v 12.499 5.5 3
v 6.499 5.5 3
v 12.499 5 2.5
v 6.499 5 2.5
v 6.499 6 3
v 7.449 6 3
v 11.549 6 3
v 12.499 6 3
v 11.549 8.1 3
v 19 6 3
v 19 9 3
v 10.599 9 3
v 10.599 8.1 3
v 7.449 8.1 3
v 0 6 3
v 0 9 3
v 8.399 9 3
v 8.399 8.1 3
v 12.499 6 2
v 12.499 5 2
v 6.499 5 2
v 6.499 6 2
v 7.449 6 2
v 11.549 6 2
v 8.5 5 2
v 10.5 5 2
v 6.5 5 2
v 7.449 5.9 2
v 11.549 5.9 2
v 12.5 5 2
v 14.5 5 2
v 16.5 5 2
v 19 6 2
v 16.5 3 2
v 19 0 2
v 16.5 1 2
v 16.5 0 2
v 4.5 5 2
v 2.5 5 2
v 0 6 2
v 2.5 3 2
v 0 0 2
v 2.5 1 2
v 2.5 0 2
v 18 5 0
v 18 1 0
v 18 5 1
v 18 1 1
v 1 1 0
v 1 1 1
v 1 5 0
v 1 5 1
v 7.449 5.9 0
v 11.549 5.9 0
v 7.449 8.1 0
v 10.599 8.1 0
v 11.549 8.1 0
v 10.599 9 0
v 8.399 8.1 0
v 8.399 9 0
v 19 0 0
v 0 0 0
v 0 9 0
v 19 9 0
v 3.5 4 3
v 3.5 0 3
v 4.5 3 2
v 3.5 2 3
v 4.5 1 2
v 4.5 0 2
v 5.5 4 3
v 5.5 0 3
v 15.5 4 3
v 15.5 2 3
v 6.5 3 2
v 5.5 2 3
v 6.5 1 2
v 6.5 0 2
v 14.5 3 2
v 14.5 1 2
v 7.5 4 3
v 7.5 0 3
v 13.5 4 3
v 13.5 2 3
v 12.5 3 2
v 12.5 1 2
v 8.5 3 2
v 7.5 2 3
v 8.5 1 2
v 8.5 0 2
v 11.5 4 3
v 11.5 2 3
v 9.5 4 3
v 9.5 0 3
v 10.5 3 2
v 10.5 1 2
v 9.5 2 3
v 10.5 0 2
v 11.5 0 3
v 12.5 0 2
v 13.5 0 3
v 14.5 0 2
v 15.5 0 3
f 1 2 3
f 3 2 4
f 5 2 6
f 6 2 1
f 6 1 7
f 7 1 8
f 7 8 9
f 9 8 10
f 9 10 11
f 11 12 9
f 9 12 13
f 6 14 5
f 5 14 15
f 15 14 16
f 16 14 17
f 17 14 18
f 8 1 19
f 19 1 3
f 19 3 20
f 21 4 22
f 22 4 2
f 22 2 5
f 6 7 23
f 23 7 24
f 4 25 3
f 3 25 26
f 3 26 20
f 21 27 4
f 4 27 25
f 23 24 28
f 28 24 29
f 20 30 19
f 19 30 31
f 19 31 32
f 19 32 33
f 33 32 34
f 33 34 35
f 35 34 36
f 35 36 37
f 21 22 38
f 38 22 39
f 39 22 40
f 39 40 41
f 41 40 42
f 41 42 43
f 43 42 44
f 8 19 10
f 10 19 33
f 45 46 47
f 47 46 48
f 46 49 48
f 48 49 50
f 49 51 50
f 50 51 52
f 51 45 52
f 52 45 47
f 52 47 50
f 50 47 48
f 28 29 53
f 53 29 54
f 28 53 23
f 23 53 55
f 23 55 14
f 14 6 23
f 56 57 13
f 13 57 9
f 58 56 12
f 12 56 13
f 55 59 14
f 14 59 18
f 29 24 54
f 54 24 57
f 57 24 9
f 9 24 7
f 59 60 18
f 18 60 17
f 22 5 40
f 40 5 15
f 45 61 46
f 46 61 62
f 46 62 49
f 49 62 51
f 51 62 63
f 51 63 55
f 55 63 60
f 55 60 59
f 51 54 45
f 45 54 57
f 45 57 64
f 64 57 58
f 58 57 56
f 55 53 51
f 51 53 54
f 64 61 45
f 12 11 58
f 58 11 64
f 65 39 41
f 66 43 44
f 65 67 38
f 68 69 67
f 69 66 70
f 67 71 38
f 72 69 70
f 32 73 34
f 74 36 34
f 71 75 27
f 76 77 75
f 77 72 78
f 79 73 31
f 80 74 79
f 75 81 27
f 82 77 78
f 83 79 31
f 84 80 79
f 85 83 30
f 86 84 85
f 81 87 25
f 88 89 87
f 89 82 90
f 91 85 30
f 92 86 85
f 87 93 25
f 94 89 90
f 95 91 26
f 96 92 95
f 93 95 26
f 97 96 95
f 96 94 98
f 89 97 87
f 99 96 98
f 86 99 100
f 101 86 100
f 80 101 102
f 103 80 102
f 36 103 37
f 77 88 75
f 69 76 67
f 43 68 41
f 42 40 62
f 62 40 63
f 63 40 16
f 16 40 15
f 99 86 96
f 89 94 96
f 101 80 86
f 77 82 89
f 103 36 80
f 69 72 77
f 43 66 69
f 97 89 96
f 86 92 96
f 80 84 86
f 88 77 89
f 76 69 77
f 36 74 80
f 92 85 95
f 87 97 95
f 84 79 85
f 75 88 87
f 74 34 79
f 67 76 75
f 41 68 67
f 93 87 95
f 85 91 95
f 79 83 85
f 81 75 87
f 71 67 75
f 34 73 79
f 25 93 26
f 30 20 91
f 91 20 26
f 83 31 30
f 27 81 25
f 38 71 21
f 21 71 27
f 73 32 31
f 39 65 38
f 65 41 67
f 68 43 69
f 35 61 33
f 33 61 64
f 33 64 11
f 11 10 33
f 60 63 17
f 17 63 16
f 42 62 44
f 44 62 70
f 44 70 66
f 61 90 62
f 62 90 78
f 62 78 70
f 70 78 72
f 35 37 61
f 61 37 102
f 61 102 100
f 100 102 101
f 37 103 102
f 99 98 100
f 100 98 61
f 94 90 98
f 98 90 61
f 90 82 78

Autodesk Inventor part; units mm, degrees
ref_plane "YZ Plane" through (0, 0, 0) normal (1, 0, 0) x (0, 1, 0)
ref_plane "XZ Plane" through (0, 0, 0) normal (0, 1, 0) x (-1, 0, 0)
ref_plane "XY Plane" through (0, 0, 0) normal (0, 0, 1) x (1, 0, 0)
sketch "Sketch1" plane through (0, 0, 0) normal (0, 0, 1) x (1, 0, 0)
  line L0 (0, 0) -> (19, 0)
  line L1 (19, 0) -> (19, 9)
  line L2 (19, 9) -> (0, 9)
  line L3 (0, 9) -> (0, 0)
  point P0 (9.5, 9)
  dimension "d0" = 19
  dimension "d1" = 9
extrude "Extrusion1" add sketch "Sketch1" along normal blind 3
sketch "Sketch10" plane through (0, 0, 0) normal (-1, 0, 0) x (0, 0, 1)
  line L0 (0, 0) -> (3, 0) projected
  line L1 (3, 9) -> (3, 0) projected
  line L2 (3, 0) -> (2, 0)
  line L3 (2, 0) -> (2, 6)
  line L4 (2, 6) -> (3, 6)
  line L5 (3, 6) -> (3, 0)
  line L6 (3, 0) -> (2, 1)
  line L7 (3, 0) -> (4.4142, 0) construction
  line L8 (2, 1) -> (3, 2)
  line L9 (3, 0) -> (3, 9) projected
  line L10 (3, 2) -> (2, 3)
  line L11 (2, 3) -> (3, 4)
  line L12 (2, 5) -> (3, 4)
  line L13 (2, 5) -> (3, 5)
  dimension "d23" = 1
  dimension "d24" = 6
  dimension "d25" = 135
  dimension "d26" = 90
extrude "Extrusion8" cut sketch "Sketch10" against normal up to next contours L6 L8 L1 | L10 L11 L1 | L12 L13 L1 | L3 L4 L1 L13
sketch "Sketch11" plane through (0, 0, 0) normal (0, -1, 0) x (1, 0, 0)
  line L0 (0, 3) -> (19, 3) projected
  line L1 (0, 3) -> (19, 3)
  line L2 (19, 3) -> (19, 2)
  line L3 (19, 2) -> (8.5, 2)
  line L4 (0, 2) -> (0, 3)
  line L5 (0, 3) -> (0, 2) projected
  line L6 (0, 3) -> (1.4142, 3) construction
  line L7 (19, 3) -> (0, 3) projected
  line L8 (9.5, 3) -> (8.5, 2)
  line L9 (9.5, 3) -> (10.9142, 3) construction
  line L10 (10.5, 2) -> (8.5, 2)
  line L11 (9.5, 3) -> (10.5, 2)
  line L12 (10.5, 2) -> (8.5, 2)
  line L13 (8.5, 2) -> (0, 2)
  line L14 (7.5, 3) -> (8.5, 2)
  line L15 (8.5, 2) -> (6.5, 2)
  line L16 (7.5, 3) -> (6.5, 2)
  line L17 (5.5, 3) -> (6.5, 2)
  line L18 (6.5, 2) -> (4.5, 2)
  line L19 (5.5, 3) -> (4.5, 2)
  line L20 (3.5, 3) -> (4.5, 2)
  line L21 (4.5, 2) -> (2.5, 2)
  line L22 (3.5, 3) -> (2.5, 2)
  line L23 (12.5, 2) -> (10.5, 2)
  line L24 (11.5, 3) -> (12.5, 2)
  line L25 (11.5, 3) -> (10.5, 2)
  line L26 (14.5, 2) -> (12.5, 2)
  line L27 (13.5, 3) -> (14.5, 2)
  line L28 (13.5, 3) -> (12.5, 2)
  line L29 (16.5, 2) -> (14.5, 2)
  line L30 (15.5, 3) -> (16.5, 2)
  line L31 (15.5, 3) -> (14.5, 2)
  point P0 (0, 0)
  dimension "d30" = 135
  dimension "d33" = 2
  dimension "d40" = 2
extrude "Extrusion9" cut sketch "Sketch11" against normal blind 6 contours L0 L22 L13 L4 | L0 L19 L20 | L0 L16 L17 | L0 L8 L14 | L0 L25 L11 | L0 L28 L24 | L0 L31 L27 | L0 L2 L3 L30
sketch "Sketch12" plane through (0, 0, 3) normal (0, 0, 1) x (1, 0, 0)
  line L0 (19, 9) -> (0, 9) projected
  line L1 (11.5494, 5.9) -> (7.4494, 5.9)
  line L2 (7.4494, 5.9) -> (7.4494, 8.1)
  line L3 (7.4494, 8.1) -> (11.5494, 8.1)
  line L4 (11.5494, 8.1) -> (11.5494, 5.9)
  line L5 (11.5494, 5.9) -> (7.4494, 8.1) construction
  line L6 (7.4494, 5.9) -> (11.5494, 8.1) construction
  line L7 (10.5994, 7.2) -> (8.3994, 7.2)
  line L8 (8.3994, 7.2) -> (8.3994, 9)
  line L9 (8.3994, 9) -> (10.5994, 9)
  line L10 (10.5994, 9) -> (10.5994, 7.2)
  line L11 (10.5994, 7.2) -> (8.3994, 9) construction
  line L12 (8.3994, 7.2) -> (10.5994, 9) construction
  point P0 (0, 0)
  point P1 (9.4994, 7)
  point P2 (9.4994, 8.1)
  dimension "d47" = 2
  dimension "d48" = 4.1
  dimension "d49" = 2.2
  dimension "d50" = 2.2
extrude "Extrusion10" cut sketch "Sketch12" against normal up to next
sketch "Sketch13" plane through (0, 0, 0) normal (0, 0, -1) x (-1, 0, 0)
  line L0 (-8.3994, 9) -> (-8.3994, 8.1) projected
  line L1 (-8.3994, 8.1) -> (-7.4494, 8.1) projected
  line L2 (-7.4494, 8.1) -> (-7.4494, 5.9) projected
  line L3 (-7.4494, 5.9) -> (-11.5494, 5.9) projected
  line L4 (-11.5494, 5.9) -> (-11.5494, 8.1) projected
  line L5 (-11.5494, 8.1) -> (-10.5994, 8.1) projected
  line L6 (-10.5994, 8.1) -> (-10.5994, 9) projected
  line L7 (-19, 9) -> (-10.5994, 9) projected
  line L8 (-19, 0) -> (-19, 9) projected
  line L9 (0, 0) -> (-19, 0) projected
  line L10 (0, 9) -> (0, 0) projected
  line L11 (-8.3994, 9) -> (0, 9) projected
  line L12 (-10.5, 3) -> (-8.5, 3) projected
  line L13 (-1, 5) -> (-18, 5)
  line L14 (-18, 5) -> (-18, 1)
  line L15 (-18, 1) -> (-1, 1)
  line L16 (-1, 1) -> (-1, 5)
  line L17 (-1, 5) -> (-18, 1) construction
  line L18 (-18, 5) -> (-1, 1) construction
  point P0 (-9.5, 3)
  dimension "d53" = 17
  dimension "d54" = 4
extrude "Extrusion11" cut sketch "Sketch13" against normal blind 1 contours L16 L15 L14 L13
sketch "Sketch14" plane through (0, 0, 2) normal (0, 0, 1) x (1, 0, 0)
  line L0 (6.4994, 5) -> (12.4994, 5)
  line L1 (12.4994, 5) -> (12.4994, 6)
  line L2 (12.4994, 6) -> (6.4994, 6)
  line L3 (6.4994, 6) -> (6.4994, 5)
  line L4 (6.4994, 5) -> (12.4994, 6) construction
  line L5 (12.4994, 5) -> (6.4994, 6) construction
  line L6 (19, 9) -> (10.5994, 9) projected
  point P0 (0, 0)
  point P1 (9.4994, 5.5)
  dimension "d57" = 6
  dimension "d58" = 1
  dimension "d59" = 3.5
extrude "Extrusion12" add sketch "Sketch14" along normal blind 1
chamfer "Chamfer1" distance 0.5 angle 45 1 edges at (9.4994, 5, 3)
sketch "WeightSection-5mm" plane through (0, 0, 0) normal (-1, 0, 0) x (0, 0, 1)
  line L0 (0, 5) -> (1, 5) projected
  line L1 (1, 5) -> (1, 1) projected
  line L2 (0, 1) -> (1, 1) projected
  circle A0 centre (-1.5334, 3) radius 2.5
  point P0 (0, 0)
  dimension "d65" = 5
properties part number "Clamp-part2(moving)-Base9x19mm."
